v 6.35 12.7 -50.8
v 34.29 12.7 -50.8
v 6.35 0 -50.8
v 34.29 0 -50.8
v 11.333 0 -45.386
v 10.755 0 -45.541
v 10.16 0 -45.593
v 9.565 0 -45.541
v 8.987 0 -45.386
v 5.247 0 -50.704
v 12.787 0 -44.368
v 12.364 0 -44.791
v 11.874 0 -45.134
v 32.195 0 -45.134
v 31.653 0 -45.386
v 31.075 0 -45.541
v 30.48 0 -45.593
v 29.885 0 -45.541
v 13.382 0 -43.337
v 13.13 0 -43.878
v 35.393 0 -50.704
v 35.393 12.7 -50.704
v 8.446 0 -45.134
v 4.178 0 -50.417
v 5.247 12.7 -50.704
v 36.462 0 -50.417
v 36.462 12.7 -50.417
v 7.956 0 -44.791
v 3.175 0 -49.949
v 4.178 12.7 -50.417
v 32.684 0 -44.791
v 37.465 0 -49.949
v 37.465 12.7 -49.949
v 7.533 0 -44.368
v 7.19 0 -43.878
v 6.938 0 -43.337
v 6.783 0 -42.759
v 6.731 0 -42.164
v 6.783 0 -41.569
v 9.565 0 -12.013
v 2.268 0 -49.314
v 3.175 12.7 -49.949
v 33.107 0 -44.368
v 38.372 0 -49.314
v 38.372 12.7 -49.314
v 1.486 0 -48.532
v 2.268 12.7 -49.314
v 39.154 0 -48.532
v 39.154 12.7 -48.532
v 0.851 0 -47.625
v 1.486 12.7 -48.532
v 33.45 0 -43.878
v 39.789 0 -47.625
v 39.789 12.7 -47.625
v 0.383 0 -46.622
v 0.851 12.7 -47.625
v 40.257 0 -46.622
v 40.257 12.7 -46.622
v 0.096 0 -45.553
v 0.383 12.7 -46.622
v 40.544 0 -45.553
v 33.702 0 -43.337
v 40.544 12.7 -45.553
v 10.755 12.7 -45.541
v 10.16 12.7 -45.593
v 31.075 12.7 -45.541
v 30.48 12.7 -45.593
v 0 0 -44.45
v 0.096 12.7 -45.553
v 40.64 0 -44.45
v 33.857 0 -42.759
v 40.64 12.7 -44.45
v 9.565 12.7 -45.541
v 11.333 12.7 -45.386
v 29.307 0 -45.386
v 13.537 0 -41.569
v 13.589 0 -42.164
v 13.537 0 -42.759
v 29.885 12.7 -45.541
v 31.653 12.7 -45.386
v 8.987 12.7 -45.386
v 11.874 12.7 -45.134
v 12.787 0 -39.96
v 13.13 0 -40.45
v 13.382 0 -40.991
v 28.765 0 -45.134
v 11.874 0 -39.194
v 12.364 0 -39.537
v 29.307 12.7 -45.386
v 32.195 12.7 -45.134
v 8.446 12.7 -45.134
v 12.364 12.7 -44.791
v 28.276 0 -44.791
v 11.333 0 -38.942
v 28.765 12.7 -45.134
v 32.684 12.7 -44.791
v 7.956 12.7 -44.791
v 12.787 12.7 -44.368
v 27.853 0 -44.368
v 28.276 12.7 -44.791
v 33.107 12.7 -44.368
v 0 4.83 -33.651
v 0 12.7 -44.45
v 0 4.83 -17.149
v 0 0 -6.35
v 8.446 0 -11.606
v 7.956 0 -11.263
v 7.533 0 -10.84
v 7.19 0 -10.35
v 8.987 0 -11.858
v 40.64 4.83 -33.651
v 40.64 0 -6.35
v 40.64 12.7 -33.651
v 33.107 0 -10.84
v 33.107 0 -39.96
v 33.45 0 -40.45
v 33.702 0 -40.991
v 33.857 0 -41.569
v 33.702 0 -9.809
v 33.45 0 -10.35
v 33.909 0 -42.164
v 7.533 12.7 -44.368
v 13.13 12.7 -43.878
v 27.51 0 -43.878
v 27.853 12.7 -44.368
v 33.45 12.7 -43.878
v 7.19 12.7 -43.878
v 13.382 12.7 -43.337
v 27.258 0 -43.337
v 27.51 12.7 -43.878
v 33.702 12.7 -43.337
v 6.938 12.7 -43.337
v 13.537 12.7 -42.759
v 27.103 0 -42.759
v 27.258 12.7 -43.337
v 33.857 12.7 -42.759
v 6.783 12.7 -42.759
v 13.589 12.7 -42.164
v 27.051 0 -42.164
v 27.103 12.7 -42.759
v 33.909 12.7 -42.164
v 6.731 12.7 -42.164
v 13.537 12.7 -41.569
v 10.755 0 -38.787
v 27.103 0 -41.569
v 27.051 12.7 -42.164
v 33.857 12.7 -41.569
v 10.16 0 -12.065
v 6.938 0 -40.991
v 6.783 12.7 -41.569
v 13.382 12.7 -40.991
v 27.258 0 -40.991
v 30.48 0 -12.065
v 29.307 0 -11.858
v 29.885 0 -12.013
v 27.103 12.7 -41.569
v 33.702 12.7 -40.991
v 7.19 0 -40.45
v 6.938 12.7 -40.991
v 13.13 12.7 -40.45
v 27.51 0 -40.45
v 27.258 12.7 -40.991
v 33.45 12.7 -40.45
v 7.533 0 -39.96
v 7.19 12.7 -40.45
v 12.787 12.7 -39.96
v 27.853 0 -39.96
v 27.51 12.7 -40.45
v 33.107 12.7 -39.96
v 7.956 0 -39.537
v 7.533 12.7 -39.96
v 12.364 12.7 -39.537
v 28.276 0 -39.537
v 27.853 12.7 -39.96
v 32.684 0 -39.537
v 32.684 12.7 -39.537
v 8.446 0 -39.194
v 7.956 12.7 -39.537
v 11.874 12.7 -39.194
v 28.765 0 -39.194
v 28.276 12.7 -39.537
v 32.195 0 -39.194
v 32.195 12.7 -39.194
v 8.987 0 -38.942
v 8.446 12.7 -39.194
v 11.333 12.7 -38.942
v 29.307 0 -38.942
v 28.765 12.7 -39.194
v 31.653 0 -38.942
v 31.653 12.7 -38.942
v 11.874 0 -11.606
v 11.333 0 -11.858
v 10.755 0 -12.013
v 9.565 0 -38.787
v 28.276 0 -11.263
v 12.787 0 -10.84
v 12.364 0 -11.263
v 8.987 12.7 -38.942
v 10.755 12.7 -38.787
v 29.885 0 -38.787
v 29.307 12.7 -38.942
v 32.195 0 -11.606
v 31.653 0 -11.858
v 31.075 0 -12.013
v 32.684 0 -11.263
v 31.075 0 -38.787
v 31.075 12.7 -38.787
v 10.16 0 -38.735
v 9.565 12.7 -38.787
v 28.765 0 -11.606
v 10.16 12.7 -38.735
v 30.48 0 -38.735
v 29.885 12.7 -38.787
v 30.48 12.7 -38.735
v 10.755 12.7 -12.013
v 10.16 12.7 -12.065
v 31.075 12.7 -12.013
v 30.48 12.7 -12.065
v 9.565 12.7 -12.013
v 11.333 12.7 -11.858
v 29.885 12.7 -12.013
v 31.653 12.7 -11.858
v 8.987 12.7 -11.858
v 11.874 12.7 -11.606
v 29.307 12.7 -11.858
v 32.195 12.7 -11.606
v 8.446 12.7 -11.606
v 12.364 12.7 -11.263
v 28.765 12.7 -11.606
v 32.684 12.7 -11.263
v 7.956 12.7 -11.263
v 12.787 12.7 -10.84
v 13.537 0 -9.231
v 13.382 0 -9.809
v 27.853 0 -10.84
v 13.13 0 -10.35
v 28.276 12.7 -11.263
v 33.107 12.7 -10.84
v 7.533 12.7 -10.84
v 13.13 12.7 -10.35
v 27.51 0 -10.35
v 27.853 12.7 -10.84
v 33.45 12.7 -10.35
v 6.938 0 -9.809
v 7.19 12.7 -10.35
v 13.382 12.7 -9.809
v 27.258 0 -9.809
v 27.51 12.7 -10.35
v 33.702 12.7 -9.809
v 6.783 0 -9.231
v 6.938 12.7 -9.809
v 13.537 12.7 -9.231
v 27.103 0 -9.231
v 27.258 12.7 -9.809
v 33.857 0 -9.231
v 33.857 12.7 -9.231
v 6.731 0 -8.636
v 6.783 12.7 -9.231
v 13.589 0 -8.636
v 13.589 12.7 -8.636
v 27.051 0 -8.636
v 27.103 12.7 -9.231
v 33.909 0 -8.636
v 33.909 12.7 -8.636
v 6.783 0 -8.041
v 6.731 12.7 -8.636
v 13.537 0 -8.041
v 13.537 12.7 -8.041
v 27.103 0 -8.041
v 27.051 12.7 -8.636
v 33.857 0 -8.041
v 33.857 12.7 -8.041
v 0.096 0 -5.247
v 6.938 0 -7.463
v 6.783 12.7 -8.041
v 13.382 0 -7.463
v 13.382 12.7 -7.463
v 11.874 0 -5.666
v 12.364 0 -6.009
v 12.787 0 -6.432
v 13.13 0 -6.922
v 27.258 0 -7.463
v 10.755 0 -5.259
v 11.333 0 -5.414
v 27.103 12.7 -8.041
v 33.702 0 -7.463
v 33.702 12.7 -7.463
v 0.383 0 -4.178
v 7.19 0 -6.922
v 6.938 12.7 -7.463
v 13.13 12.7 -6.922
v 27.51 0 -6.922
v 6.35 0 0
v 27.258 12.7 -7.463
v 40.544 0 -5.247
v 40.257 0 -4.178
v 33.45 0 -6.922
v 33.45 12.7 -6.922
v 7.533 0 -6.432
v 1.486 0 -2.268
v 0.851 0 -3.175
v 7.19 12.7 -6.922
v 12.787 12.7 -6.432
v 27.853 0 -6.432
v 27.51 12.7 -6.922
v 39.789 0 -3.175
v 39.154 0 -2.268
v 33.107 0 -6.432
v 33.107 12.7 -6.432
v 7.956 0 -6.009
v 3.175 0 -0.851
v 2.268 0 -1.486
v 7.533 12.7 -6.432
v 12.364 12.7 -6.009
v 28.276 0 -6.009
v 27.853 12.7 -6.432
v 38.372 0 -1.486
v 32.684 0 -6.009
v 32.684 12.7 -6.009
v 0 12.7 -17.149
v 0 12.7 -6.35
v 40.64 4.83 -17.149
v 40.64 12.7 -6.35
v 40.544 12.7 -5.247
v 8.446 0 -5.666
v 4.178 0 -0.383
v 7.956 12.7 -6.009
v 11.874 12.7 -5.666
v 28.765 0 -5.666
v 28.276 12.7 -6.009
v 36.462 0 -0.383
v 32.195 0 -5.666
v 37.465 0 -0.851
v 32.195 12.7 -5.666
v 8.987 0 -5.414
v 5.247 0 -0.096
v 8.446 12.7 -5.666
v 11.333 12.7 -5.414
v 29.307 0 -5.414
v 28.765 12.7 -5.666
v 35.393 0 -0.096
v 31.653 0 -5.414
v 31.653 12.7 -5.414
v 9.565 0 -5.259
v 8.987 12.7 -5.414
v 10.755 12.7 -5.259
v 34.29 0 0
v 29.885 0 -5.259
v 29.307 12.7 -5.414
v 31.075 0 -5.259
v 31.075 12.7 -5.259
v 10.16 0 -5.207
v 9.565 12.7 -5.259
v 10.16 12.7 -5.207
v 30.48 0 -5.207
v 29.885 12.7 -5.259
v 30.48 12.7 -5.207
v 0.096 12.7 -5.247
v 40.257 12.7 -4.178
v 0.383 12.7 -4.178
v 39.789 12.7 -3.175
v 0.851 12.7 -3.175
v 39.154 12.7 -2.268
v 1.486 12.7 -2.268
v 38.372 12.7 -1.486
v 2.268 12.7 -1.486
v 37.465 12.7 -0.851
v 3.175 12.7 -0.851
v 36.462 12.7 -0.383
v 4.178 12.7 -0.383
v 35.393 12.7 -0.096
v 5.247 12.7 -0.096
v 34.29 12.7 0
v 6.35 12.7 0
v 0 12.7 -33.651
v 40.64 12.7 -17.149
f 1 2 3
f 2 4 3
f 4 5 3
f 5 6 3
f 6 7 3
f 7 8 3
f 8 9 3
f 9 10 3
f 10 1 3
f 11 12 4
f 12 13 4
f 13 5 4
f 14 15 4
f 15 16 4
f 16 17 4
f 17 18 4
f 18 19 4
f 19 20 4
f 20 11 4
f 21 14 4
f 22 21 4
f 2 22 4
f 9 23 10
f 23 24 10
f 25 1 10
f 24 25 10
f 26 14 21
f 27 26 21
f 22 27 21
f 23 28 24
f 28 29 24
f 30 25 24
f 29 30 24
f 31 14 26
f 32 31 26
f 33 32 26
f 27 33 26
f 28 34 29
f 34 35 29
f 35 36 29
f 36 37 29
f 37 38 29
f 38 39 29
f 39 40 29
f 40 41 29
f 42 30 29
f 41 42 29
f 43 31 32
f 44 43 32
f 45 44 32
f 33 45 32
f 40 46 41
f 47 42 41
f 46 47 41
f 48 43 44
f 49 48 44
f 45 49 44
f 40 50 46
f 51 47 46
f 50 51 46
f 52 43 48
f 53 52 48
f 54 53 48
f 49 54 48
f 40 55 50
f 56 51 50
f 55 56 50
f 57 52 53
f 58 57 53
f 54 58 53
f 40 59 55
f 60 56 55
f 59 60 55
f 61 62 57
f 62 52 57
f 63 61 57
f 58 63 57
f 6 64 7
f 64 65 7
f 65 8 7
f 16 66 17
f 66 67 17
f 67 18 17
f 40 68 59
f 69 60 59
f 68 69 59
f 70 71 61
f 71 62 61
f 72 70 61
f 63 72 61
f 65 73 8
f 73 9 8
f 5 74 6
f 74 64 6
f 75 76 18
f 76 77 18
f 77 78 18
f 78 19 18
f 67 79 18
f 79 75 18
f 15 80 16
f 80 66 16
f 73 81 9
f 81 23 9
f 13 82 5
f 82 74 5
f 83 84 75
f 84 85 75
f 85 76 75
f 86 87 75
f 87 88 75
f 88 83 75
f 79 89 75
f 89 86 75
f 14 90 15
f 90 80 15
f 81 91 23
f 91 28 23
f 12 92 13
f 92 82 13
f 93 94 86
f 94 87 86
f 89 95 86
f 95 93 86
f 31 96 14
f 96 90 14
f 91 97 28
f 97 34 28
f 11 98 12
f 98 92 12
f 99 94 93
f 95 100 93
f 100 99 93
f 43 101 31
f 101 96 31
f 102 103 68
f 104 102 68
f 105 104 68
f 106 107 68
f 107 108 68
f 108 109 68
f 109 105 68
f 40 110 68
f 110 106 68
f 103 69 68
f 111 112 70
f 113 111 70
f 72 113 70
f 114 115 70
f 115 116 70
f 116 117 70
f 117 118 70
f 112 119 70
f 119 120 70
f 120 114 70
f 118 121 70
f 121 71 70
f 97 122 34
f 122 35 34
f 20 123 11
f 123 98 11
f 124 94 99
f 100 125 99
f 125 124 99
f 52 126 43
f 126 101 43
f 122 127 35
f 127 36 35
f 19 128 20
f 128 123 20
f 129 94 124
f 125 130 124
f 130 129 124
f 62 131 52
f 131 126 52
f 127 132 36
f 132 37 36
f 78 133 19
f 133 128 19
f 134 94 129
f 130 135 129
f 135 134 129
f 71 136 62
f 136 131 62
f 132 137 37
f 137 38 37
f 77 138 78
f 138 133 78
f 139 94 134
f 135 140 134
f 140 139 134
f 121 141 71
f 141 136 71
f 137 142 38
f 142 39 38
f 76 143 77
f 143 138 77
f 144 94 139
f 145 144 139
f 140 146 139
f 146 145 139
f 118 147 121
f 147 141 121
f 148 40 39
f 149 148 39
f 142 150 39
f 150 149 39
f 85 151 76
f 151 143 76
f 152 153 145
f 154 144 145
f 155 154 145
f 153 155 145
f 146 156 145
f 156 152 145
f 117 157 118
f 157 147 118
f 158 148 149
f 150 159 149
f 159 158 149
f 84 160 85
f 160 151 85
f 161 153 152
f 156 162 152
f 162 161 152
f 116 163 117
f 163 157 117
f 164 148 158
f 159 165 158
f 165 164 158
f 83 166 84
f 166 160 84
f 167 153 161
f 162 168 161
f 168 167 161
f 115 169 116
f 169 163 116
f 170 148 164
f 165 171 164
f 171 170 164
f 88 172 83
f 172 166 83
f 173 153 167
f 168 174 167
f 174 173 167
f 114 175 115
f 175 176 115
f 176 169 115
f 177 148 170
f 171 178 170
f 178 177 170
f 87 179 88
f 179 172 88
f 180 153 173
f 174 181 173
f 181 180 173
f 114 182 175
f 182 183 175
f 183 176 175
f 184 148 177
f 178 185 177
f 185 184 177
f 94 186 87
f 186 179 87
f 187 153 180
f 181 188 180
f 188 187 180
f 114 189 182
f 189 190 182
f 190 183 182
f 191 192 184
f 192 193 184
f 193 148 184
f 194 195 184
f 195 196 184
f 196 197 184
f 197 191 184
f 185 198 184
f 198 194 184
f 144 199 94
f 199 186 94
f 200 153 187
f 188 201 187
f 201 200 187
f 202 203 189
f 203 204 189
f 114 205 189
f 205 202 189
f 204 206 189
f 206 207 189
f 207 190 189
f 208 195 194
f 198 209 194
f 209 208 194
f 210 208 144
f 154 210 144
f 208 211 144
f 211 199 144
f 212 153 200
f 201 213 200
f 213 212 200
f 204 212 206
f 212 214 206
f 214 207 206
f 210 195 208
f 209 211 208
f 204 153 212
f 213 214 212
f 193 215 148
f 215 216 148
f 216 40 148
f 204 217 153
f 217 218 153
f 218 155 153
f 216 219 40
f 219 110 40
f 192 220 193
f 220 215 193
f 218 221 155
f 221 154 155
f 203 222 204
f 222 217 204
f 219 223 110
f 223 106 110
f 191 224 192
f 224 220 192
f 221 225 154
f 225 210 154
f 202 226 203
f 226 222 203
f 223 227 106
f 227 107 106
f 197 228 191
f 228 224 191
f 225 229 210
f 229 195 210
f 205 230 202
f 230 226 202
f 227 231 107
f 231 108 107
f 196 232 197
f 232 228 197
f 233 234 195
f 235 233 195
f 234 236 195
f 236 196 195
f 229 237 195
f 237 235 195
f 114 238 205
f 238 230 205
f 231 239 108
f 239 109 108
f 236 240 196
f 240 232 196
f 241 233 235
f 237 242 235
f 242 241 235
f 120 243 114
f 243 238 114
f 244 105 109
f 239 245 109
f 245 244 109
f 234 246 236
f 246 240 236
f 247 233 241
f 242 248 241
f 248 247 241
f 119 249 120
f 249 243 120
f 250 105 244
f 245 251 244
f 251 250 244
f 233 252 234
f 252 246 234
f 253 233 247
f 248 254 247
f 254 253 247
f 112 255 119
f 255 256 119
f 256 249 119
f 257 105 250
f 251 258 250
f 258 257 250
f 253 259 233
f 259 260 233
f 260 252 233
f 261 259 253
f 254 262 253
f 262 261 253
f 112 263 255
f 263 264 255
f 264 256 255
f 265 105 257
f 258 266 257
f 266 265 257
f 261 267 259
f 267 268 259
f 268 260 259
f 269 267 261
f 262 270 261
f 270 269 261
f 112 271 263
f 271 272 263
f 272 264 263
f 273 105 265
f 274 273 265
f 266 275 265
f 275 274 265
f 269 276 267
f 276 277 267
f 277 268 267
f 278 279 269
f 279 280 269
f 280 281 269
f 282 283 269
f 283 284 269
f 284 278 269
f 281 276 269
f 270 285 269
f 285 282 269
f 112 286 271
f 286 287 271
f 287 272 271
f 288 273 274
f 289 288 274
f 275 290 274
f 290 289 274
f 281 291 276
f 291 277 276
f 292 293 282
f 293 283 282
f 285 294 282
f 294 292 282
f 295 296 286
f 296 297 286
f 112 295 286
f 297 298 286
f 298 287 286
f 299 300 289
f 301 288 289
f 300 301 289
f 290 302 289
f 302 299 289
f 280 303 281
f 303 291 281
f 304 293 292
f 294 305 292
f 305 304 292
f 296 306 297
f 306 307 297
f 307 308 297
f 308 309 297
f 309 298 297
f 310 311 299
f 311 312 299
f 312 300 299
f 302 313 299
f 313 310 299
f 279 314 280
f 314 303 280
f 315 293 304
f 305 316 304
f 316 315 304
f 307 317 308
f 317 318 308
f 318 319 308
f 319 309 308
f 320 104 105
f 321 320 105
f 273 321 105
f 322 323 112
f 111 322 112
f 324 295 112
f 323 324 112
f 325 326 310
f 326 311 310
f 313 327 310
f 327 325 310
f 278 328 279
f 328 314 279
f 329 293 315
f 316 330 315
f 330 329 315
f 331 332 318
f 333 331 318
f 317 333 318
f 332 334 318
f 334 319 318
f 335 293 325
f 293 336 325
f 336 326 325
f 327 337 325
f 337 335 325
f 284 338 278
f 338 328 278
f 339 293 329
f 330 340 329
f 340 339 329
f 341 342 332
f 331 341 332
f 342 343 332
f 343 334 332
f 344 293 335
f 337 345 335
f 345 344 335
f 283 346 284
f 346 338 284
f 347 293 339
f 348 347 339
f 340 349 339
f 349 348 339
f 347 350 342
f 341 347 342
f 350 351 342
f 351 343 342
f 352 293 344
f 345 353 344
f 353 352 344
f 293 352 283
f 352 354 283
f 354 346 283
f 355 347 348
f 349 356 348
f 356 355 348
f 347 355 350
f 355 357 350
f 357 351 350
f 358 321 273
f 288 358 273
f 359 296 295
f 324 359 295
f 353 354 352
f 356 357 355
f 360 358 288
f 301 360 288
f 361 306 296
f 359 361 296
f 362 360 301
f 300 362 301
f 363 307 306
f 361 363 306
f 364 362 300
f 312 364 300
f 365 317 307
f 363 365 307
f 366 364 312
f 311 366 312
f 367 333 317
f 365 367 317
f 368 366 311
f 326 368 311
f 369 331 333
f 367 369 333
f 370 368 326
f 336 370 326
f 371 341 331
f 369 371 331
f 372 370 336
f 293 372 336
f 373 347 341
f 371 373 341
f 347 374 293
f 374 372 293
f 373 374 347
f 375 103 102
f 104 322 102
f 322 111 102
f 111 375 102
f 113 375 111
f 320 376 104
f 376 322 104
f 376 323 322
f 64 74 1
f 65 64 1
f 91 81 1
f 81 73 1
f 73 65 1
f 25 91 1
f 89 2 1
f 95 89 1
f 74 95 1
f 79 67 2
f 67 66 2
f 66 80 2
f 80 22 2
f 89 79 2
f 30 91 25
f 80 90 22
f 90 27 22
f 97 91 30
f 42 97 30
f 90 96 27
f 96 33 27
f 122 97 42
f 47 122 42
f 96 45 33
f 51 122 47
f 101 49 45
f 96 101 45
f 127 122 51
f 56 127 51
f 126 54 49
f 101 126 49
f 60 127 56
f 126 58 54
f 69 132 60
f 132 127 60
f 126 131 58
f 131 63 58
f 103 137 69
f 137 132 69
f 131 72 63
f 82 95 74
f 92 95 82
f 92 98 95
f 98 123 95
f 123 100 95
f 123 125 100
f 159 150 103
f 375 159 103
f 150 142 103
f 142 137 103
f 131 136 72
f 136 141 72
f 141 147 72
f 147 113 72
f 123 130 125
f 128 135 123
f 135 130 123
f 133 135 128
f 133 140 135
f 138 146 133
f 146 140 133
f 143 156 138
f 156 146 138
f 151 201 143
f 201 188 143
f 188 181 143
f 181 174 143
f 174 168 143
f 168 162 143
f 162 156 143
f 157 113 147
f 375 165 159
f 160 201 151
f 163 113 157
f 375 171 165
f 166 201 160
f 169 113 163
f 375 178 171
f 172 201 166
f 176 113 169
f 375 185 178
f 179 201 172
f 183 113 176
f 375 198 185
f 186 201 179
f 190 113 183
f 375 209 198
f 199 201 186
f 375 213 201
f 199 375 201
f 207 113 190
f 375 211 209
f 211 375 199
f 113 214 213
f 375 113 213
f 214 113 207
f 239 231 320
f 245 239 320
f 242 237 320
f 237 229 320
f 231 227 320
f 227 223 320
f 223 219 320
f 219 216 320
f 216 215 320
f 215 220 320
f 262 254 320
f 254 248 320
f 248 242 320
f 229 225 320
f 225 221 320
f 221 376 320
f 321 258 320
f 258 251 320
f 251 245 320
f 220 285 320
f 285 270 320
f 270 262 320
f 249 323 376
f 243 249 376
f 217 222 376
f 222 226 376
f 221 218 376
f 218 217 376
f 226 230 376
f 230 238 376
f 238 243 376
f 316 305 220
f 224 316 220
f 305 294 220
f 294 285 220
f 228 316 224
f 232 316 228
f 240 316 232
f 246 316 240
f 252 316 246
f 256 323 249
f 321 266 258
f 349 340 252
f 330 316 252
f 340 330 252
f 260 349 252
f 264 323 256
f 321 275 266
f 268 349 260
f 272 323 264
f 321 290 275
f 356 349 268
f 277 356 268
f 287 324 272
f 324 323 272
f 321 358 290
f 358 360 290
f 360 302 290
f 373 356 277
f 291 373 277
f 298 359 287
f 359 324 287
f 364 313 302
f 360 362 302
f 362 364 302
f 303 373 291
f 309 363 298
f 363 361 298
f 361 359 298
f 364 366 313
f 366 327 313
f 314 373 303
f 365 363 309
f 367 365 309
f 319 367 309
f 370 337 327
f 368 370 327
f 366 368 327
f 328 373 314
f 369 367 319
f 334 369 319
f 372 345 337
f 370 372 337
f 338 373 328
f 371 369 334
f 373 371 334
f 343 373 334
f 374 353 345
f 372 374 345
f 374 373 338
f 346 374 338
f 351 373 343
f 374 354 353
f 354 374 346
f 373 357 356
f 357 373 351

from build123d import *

# Parameters (mm, degrees)
SKETCH1_W               = 40.64
SKETCH1_H               = 50.8
BOSS_EXTRUDE1_DEPTH     = 12.7
CUT_EXTRUDE1_DEPTH      = 67.283780822
CUT_EXTRUDE1_DEPTH_BACK = 67.283780822
SKETCH3_W               = 16.502
SKETCH3_H               = 8.12
CUT_EXTRUDE2_DEPTH      = 67.283780822
CUT_EXTRUDE2_DEPTH_BACK = 67.283780822
SKETCH5_R               = 3.429
FILLET1_R               = 6.35


with BuildPart() as part:
    # Sketch1 → Boss-Extrude1 (new body)
    with BuildSketch(Plane(origin=(0, 0, 0), x_dir=(1, 0, 0), z_dir=(0, 1, 0))):
        with Locations((20.32, 25.4)):
            Rectangle(SKETCH1_W, SKETCH1_H)
    extrude(amount=BOSS_EXTRUDE1_DEPTH)

    # Sketch3 → Cut-Extrude1 (cut, two sides: drawn at the far end of the back side and taken through both)
    with BuildSketch(Plane(origin=(40.64, 0, 0), x_dir=(0, 0, -1), z_dir=(1, 0, 0)).offset(-CUT_EXTRUDE1_DEPTH_BACK)):
        with Locations((25.4, 8.89)):
            Rectangle(SKETCH3_W, SKETCH3_H)
    extrude(amount=CUT_EXTRUDE1_DEPTH + CUT_EXTRUDE1_DEPTH_BACK, mode=Mode.SUBTRACT)

    # Sketch5 → Cut-Extrude2 (cut, two sides: drawn at the far end of the back side and taken through both)
    with BuildSketch(Plane(origin=(0, 12.7, 0), x_dir=(1, 0, 0), z_dir=(0, 1, 0)).offset(-CUT_EXTRUDE2_DEPTH_BACK)):
        with Locations(Location((10.16, 8.636, 0), (0, 0, 270))):
            Circle(SKETCH5_R)
        with Locations(Location((30.48, 8.636, 0), (0, 0, 270))):
            Circle(SKETCH5_R)
        with Locations(Location((30.48, 42.164, 0), (0, 0, 270))):
            Circle(SKETCH5_R)
        with Locations(Location((10.16, 42.164, 0), (0, 0, 270))):
            Circle(SKETCH5_R)
    extrude(amount=CUT_EXTRUDE2_DEPTH + CUT_EXTRUDE2_DEPTH_BACK, mode=Mode.SUBTRACT)

    # Fillet1
    fillet1_edges = [part.edges().sort_by_distance(p)[0] for p in [
        (0, 6.35, -50.8),
        (40.64, 6.35, -50.8),
        (40.64, 6.35, 0),
        (0, 6.35, 0),
    ]]
    fillet(fillet1_edges, radius=FILLET1_R)


solid = part.part
